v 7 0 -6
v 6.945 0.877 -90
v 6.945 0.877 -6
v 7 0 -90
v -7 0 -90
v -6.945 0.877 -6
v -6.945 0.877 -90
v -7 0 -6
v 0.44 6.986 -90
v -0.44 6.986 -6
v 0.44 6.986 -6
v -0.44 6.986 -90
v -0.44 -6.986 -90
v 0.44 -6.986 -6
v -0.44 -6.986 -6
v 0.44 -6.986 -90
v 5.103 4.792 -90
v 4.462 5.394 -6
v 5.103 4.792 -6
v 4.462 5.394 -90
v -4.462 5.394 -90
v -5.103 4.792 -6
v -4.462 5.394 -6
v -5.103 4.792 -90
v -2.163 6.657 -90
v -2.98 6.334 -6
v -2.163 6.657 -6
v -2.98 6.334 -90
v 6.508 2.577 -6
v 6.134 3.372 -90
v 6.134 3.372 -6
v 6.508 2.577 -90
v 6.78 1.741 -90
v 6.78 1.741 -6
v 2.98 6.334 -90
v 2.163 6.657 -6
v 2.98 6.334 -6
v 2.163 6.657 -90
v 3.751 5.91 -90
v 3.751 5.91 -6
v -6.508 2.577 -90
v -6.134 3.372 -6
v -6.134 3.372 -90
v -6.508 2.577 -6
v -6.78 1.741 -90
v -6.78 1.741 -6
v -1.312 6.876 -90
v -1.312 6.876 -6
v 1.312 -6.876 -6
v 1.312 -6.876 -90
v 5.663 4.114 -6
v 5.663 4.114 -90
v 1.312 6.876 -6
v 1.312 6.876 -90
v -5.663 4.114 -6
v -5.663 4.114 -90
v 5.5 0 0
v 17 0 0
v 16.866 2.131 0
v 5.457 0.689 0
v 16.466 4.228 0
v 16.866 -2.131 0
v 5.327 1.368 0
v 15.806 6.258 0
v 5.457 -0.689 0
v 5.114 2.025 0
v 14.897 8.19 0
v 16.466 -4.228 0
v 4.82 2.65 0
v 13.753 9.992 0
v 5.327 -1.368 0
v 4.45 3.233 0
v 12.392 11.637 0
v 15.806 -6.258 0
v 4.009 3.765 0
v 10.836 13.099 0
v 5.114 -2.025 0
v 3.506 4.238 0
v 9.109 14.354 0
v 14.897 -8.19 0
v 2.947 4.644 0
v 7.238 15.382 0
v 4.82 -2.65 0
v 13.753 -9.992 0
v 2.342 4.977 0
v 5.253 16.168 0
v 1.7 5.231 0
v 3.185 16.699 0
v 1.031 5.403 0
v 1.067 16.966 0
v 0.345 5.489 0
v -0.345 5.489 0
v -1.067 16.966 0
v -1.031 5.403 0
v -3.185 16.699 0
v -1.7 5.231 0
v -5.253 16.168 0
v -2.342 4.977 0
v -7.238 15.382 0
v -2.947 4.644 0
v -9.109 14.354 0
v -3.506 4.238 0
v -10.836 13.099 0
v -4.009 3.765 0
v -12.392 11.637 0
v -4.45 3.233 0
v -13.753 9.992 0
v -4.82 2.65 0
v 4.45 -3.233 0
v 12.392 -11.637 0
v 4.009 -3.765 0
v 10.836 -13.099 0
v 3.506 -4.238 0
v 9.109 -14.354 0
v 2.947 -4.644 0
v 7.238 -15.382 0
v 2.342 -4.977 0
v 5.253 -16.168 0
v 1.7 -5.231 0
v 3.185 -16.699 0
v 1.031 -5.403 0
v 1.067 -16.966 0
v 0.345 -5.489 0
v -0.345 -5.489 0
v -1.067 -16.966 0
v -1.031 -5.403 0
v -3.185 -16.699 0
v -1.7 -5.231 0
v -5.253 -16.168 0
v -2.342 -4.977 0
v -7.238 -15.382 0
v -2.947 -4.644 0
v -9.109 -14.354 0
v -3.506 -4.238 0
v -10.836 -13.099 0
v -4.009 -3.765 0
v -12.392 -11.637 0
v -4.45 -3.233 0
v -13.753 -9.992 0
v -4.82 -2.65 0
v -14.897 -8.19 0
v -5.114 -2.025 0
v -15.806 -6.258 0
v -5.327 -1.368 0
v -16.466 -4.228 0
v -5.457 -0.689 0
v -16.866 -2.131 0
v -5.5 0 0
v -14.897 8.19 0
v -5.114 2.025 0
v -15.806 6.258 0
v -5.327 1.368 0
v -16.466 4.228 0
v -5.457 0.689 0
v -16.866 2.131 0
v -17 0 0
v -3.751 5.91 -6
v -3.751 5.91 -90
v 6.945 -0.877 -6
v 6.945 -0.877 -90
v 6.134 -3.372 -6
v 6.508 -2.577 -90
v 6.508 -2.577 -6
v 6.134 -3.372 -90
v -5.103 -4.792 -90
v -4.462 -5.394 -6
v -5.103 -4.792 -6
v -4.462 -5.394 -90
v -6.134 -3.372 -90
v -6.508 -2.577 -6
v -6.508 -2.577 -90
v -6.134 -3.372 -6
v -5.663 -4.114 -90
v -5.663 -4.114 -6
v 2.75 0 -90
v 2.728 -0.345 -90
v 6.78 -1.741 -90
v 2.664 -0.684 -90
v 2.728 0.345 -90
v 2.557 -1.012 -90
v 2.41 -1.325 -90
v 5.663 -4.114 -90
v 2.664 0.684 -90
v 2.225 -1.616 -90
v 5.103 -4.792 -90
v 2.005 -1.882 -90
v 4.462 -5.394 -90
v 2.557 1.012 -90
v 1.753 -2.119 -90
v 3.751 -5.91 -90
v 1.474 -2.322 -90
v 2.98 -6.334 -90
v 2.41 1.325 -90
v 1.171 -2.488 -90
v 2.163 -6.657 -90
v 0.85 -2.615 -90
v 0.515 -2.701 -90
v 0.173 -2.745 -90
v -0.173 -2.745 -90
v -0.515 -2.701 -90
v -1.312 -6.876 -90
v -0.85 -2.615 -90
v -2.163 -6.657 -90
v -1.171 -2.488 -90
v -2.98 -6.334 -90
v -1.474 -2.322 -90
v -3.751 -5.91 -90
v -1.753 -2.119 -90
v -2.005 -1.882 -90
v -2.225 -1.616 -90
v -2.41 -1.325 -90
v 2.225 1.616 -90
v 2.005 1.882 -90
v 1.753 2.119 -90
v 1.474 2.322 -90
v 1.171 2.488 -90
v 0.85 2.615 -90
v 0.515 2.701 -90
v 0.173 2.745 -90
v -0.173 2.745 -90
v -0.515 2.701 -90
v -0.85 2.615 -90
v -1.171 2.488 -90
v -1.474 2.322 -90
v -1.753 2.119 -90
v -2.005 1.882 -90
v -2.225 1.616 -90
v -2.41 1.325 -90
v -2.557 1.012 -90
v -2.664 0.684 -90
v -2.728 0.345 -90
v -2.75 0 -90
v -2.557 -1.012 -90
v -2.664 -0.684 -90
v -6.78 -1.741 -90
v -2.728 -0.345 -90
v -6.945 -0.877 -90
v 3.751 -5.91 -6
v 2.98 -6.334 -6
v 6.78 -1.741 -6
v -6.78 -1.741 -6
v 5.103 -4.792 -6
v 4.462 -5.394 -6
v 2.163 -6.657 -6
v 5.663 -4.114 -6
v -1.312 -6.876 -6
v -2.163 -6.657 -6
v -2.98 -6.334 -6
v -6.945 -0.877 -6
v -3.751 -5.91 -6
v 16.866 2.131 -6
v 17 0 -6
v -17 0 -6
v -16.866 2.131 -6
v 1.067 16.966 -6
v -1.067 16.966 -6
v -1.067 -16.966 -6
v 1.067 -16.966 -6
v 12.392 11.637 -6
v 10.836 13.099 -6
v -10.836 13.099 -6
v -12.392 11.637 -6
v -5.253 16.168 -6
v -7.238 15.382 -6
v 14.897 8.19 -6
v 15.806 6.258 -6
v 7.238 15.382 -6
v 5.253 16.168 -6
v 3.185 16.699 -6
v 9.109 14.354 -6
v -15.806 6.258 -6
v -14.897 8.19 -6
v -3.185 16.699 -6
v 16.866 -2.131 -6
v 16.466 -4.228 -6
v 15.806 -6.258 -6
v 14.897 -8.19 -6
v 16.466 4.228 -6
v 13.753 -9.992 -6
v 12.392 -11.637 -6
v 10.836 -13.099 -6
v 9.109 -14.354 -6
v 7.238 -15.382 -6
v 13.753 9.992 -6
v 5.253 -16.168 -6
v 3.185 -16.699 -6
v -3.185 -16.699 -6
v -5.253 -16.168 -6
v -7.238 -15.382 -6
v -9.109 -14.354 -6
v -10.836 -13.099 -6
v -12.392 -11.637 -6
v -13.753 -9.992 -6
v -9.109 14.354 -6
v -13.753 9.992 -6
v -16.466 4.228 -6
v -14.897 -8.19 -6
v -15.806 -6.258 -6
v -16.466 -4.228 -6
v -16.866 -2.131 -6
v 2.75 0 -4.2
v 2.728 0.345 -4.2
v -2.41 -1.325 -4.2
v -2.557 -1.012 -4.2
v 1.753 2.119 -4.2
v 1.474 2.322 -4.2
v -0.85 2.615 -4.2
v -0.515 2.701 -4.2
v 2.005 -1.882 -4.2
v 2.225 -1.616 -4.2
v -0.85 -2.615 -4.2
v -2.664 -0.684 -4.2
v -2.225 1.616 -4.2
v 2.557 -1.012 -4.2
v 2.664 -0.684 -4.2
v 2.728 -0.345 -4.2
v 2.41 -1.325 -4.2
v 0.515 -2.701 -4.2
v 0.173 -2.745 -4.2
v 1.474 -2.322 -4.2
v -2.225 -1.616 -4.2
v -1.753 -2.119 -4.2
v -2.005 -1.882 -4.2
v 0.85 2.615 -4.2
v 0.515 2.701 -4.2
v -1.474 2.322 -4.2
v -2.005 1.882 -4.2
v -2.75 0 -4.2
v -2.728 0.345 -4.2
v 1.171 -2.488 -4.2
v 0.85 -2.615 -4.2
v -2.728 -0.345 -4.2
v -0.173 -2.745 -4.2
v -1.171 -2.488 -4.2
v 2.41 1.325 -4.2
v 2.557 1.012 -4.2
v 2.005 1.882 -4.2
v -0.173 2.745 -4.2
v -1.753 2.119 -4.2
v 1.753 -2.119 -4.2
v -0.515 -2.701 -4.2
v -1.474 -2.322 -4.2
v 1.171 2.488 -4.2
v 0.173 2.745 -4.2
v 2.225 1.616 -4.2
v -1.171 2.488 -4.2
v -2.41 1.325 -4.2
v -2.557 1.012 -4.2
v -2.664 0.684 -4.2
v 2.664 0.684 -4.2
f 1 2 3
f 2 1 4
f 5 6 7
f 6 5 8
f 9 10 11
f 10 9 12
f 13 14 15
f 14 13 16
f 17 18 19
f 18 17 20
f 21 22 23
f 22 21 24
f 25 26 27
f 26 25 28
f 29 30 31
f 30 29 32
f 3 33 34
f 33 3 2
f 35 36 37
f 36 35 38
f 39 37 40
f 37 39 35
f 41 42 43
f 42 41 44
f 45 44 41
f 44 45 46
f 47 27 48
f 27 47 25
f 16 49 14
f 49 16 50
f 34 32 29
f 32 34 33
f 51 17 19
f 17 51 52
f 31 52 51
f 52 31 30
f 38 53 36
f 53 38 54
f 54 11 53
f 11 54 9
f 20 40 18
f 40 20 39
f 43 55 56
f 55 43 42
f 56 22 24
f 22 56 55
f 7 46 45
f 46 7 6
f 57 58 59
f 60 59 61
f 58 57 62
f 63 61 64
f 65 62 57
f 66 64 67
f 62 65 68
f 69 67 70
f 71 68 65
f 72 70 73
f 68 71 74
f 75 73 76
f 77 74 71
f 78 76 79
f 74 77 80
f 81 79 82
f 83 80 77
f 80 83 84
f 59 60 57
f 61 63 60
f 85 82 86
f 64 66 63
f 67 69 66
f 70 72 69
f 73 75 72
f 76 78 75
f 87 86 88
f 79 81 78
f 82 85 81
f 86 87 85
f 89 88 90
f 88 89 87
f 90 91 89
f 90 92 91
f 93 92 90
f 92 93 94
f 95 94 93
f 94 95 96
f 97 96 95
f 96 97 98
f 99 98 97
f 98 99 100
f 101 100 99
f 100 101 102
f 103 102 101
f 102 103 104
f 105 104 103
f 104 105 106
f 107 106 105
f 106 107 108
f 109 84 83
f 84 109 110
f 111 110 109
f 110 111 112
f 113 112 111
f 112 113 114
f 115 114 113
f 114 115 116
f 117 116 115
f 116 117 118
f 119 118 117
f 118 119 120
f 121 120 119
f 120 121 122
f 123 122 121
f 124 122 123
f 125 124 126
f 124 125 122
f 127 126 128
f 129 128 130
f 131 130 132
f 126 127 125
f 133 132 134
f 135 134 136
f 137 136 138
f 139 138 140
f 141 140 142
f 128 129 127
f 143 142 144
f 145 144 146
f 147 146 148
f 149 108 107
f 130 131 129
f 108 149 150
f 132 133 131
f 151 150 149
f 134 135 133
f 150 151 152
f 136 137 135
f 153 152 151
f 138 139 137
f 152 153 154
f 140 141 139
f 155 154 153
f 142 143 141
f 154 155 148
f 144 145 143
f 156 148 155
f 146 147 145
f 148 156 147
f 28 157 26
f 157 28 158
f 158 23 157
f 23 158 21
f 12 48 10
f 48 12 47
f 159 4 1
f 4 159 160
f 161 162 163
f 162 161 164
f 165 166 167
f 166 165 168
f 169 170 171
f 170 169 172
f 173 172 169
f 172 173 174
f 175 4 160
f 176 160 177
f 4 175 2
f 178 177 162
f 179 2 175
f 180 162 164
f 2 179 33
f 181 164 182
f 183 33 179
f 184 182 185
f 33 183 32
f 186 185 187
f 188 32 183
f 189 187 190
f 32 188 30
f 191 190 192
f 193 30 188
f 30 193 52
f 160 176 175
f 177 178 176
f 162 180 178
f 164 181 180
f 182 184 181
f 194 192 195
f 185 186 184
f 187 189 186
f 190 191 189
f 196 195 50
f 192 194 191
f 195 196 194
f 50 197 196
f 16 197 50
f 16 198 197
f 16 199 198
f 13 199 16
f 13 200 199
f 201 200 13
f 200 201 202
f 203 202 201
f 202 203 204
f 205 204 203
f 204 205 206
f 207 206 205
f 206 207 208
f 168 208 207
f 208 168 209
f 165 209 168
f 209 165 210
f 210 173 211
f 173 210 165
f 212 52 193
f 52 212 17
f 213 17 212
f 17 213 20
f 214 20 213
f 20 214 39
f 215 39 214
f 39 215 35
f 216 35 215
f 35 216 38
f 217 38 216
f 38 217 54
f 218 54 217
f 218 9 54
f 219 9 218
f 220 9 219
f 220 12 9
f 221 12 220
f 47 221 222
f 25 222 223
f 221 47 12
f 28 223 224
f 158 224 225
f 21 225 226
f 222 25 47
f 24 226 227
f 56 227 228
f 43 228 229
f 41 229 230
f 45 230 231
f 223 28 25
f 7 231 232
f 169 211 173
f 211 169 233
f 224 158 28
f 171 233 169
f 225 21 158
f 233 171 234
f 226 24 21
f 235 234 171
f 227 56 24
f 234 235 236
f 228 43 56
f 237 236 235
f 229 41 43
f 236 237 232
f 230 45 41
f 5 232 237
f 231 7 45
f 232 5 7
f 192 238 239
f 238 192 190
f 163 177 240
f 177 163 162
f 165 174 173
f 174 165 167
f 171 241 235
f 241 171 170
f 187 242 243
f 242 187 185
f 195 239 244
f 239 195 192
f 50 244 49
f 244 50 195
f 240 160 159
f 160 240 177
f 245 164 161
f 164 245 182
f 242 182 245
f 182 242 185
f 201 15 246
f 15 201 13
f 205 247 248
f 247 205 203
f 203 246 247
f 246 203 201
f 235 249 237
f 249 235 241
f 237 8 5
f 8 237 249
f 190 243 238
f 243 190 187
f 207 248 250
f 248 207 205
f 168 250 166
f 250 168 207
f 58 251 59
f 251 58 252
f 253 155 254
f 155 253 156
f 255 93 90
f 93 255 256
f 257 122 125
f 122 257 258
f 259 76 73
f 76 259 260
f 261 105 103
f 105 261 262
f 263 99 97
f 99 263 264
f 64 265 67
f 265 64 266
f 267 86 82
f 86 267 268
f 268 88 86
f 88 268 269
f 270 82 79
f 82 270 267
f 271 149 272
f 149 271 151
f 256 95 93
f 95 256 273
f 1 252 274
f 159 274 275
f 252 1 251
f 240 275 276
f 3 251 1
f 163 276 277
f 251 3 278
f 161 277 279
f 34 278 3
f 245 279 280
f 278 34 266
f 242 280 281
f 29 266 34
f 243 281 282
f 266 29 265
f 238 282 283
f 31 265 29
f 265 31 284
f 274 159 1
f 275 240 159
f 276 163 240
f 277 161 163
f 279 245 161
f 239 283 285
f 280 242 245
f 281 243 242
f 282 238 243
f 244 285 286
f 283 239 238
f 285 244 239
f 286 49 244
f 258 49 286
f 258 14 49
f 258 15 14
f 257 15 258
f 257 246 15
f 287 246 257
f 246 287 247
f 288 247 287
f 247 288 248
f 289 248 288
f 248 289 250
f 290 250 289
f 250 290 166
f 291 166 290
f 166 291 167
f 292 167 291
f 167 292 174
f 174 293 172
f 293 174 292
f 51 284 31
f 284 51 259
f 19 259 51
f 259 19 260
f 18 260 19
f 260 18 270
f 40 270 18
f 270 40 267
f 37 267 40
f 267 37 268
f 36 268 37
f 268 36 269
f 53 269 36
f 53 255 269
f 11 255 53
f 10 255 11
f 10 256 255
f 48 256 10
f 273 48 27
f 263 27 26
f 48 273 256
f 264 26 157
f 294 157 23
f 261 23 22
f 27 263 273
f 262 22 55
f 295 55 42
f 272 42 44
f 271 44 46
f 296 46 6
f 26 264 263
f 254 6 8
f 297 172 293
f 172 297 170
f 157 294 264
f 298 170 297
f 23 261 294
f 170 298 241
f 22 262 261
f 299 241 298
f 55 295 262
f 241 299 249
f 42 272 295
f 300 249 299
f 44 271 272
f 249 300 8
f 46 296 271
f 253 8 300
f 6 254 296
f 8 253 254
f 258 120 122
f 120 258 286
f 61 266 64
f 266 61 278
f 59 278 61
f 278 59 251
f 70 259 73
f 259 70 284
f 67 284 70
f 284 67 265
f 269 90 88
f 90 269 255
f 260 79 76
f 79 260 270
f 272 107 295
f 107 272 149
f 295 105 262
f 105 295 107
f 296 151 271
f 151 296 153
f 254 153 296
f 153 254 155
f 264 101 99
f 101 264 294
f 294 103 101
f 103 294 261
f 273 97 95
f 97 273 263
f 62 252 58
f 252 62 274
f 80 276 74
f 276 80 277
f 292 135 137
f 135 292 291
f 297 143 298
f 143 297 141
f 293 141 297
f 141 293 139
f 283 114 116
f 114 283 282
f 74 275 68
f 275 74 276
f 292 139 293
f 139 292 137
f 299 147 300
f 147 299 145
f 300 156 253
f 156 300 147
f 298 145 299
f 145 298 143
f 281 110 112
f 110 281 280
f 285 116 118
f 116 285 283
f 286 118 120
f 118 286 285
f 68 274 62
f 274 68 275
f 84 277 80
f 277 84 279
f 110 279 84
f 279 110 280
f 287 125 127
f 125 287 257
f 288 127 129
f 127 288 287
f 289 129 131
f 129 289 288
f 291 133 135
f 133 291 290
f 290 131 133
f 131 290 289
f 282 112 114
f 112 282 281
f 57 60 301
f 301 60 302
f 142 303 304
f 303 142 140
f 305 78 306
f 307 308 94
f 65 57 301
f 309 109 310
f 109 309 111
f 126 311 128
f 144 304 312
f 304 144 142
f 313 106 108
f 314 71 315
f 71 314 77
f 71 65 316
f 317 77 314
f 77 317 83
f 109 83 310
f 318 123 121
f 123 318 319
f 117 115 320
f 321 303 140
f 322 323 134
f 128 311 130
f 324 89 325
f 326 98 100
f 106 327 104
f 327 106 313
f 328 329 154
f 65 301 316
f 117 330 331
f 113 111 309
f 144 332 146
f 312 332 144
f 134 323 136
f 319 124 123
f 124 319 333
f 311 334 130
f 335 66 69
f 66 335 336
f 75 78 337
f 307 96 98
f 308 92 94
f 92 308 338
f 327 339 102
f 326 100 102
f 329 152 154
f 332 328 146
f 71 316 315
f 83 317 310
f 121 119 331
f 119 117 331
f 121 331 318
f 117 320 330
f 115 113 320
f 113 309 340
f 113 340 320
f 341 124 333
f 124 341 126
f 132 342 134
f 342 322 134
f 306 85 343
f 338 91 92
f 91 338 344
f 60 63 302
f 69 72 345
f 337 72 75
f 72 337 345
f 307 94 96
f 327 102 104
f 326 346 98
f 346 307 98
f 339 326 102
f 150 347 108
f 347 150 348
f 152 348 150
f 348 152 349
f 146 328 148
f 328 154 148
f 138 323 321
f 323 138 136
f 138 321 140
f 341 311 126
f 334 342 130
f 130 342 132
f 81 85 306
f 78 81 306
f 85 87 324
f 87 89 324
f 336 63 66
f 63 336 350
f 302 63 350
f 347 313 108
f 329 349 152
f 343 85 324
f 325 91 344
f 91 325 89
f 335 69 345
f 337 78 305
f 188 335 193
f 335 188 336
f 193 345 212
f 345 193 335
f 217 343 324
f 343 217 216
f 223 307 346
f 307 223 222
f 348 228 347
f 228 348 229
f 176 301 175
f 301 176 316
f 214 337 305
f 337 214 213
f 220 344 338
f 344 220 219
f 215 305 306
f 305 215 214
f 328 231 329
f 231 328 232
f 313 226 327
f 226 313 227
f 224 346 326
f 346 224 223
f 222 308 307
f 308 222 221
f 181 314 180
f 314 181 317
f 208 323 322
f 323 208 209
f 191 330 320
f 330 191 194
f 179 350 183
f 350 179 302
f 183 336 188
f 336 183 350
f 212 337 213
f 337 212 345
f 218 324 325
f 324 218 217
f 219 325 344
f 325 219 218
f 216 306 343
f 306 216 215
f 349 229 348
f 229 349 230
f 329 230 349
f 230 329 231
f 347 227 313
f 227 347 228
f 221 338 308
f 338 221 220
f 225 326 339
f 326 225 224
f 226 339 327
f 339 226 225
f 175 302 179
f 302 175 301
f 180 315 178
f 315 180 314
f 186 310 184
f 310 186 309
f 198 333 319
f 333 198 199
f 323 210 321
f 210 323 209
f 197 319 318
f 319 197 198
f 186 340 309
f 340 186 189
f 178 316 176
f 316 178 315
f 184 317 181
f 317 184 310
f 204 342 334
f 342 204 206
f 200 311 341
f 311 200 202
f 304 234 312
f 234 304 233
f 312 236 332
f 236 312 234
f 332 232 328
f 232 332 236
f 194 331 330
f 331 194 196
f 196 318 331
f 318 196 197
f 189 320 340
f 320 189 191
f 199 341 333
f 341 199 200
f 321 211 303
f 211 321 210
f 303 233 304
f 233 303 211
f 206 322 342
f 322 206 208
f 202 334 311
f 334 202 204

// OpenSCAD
$fn = 50;


difference() {
	union() {
		translate(v = [0, 0, -90.0000000000]) {
			cylinder(h = 90, r = 7.0000000000);
		}
		translate(v = [0, 0, -6.0000000000]) {
			cylinder(h = 6, r = 17.0000000000);
		}
	}
	union() {
		translate(v = [0, 0, 0]) {
			rotate(a = [0, 0, 0]) {
				difference() {
					union() {
						#translate(v = [0, 0, -90.0000000000]) {
							cylinder(h = 90, r = 2.2500000000);
						}
						#translate(v = [0, 0, -4.2000000000]) {
							cylinder(h = 4.2000000000, r1 = 2.7500000000, r2 = 5.5000000000);
						}
						#translate(v = [0, 0, -90.0000000000]) {
							cylinder(h = 90, r = 2.7500000000);
						}
						#translate(v = [0, 0, -90.0000000000]) {
							cylinder(h = 90, r = 2.2500000000);
						}
					}
					union();
				}
			}
		}
	}
}
